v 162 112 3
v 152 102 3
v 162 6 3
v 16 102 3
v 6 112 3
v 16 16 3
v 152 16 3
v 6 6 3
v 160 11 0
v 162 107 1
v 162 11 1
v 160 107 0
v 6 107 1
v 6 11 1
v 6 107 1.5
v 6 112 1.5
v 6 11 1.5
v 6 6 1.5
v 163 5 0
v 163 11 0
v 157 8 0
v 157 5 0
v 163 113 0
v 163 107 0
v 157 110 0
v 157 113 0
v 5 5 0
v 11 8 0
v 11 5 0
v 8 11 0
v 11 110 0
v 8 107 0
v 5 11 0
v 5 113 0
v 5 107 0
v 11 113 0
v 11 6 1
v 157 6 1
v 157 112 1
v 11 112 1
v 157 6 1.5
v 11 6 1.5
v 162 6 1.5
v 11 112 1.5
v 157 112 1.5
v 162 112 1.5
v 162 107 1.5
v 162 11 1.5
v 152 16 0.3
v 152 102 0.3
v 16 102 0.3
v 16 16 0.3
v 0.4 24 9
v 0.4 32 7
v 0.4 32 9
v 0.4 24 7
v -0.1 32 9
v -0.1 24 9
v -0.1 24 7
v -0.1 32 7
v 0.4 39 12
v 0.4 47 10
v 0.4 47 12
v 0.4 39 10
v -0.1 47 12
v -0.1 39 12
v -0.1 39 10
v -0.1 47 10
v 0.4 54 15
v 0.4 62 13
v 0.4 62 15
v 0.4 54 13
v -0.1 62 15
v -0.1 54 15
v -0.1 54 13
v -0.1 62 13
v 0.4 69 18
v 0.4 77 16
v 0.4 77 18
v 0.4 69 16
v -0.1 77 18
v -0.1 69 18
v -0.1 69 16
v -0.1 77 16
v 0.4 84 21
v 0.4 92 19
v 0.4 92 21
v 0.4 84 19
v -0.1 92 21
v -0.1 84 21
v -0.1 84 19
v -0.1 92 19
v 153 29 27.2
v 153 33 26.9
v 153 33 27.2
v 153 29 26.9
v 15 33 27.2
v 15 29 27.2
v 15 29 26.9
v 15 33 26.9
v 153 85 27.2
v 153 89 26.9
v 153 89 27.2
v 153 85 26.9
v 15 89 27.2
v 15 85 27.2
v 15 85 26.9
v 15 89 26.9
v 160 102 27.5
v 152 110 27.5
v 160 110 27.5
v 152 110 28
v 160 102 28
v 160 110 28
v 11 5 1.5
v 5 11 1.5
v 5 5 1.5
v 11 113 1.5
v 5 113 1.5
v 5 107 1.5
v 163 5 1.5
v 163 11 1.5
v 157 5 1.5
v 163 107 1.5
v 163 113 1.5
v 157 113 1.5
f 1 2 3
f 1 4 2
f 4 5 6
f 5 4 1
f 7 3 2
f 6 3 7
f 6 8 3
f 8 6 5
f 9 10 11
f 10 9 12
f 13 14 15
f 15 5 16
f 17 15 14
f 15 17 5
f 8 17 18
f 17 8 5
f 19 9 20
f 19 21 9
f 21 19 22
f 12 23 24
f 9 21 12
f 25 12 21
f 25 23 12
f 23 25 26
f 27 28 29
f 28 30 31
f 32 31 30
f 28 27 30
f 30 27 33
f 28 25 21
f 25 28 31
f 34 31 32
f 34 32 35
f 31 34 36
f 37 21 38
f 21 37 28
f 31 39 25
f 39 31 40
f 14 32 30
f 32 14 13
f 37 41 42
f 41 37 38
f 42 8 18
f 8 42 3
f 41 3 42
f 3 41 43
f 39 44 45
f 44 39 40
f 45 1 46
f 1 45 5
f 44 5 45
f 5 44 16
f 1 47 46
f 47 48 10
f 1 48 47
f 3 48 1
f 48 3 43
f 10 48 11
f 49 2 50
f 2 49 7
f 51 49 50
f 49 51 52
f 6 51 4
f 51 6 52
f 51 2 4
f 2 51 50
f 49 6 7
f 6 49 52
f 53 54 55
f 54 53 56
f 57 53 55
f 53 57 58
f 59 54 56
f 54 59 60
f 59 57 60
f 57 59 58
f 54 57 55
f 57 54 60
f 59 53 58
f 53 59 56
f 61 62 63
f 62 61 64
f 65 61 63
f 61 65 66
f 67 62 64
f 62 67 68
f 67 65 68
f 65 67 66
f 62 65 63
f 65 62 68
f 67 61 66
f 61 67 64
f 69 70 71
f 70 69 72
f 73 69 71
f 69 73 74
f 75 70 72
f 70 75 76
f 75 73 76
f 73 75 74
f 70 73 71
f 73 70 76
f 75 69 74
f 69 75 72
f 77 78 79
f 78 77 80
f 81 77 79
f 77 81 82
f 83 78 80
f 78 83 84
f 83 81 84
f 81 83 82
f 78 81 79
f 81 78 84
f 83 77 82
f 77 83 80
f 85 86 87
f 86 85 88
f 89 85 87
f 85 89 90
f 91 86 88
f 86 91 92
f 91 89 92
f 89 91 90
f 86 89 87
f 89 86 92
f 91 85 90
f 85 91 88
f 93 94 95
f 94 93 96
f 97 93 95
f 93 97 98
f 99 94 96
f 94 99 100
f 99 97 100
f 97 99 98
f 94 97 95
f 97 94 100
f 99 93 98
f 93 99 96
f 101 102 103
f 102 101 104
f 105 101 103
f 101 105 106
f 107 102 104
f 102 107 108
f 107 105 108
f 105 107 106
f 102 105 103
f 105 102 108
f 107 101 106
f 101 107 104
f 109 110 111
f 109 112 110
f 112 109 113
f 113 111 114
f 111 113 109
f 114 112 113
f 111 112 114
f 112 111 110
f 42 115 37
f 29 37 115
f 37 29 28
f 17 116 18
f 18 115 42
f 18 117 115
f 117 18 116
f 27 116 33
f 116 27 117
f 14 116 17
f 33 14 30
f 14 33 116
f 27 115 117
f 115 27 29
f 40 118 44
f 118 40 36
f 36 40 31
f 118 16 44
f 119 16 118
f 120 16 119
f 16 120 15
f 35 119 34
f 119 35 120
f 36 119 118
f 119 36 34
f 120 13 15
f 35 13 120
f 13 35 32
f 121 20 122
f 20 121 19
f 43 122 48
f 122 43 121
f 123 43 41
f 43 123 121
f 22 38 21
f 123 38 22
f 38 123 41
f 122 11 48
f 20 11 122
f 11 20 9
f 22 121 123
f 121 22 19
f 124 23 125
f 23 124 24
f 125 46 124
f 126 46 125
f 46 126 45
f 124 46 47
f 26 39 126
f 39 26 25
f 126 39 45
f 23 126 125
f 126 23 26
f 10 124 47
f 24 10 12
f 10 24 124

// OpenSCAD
// ============================================================================
// 7100CPT-R "Racing" — Aggressive black + red performance style
// Matches the copper/red pasted image aesthetic
// ============================================================================
// Envelope: 165mm x 115mm x 28mm (low profile!)

pcb_x = 160;
pcb_y = 110;
wall = 2.5;
clearance = 1.5;

encl_x = pcb_x + 2*wall + 2*clearance; // 165
encl_y = pcb_y + 2*wall + 2*clearance; // 115
encl_z = 28;  // very slim
base_z = 3;
inner_h = encl_z - base_z - 2;

// Aggressive angle cuts
angle = 15;  // degrees
cut_depth = 8;

// Red accent stripe
stripe_w = 4;
stripe_d = 1;

// Vent slots (top)
vent_count = 6;
vent_w = 3;
vent_l = 30;
vent_pitch = (encl_x - 40) / (vent_count - 1);

// Red accent color from reference: #C92E31
red_accent = "#C92E31";
body_color = "#131313";
body_alt = "#1A1919";

$fn = 32;

// ====================================================================
// MAIN BODY — low profile with aggressive chamfers
// ====================================================================
module body() {
  difference() {
    hull() {
      // Main block with chamfered edges
      translate([6, 6, 1])
        cube([encl_x - 12, encl_y - 12, encl_z - 1]);
      // Sharp chamfer top
      translate([8, 8, 0])
        cube([encl_x - 16, encl_y - 16, encl_z]);
    }

    // Interior cavity
    translate([wall + clearance, wall + clearance, base_z])
      cube([pcb_x, pcb_y, inner_h + 2]);

    // ---- Aggressive edge cuts (front-left corner) ----
    rotate([0, 0, angle])
      translate([-10, -10, base_z + 4])
        cube([cut_depth, cut_depth + 40, encl_z]);

    // ---- Aggressive edge cuts (rear-right corner) ----
    rotate([0, 0, -(90 - angle)])
      translate([-encl_x - 5, encl_y - 10, base_z + 4])
        cube([cut_depth + 20, cut_depth, encl_z]);

    // ---- Top vent slots ----
    for (i = [0:vent_count-1]) {
      translate([
        20 + i * vent_pitch,
        (encl_y - vent_l) / 2,
        encl_z - 1
      ])
        cube([vent_w, vent_l, 2]);
    }

    // ---- Red accent groove trenches (top, parallel) ----
    translate([15, encl_y/2 - 30, encl_z - stripe_d])
      cube([encl_x - 30, stripe_w, stripe_d + 0.1]);
    translate([15, encl_y/2 + 26, encl_z - stripe_d])
      cube([encl_x - 30, stripe_w, stripe_d + 0.1]);

    // ---- Side gills (left edge) ----
    for (i = [0:4]) {
      translate([
        -0.1,
        encl_y/2 - 35 + i * 15,
        base_z + 4 + i * 3
      ])
        cube([wall + 0.2, 8, 2]);
    }

    // ---- Connector cutouts ----
    // Main connector (left)
    translate([-0.1, (encl_y - 60)/2, base_z + 3])
      cube([wall + 0.2, 60, 14]);

    // CAN connectors (top)
    for (d = [20, 50]) {
      translate([wall + clearance + d, encl_y - 0.1, base_z + 4])
        cube([18, wall + 0.2, 10]);
    }

    // USB-C (right)
    translate([encl_x - 0.1, encl_y - 55, base_z + 7])
      cube([wall + 0.2, 12, 5]);

    // SWD (bottom)
    translate([encl_x/2 - 8, -0.1, base_z + 5])
      cube([16, wall + 0.2, 7]);

    // Status LED cutouts (front edge)
    for (i = [0:2]) {
      translate([
        encl_x/2 - 15 + i * 12,
        -0.1,
        base_z + 2
      ])
        cube([5, wall + 0.2, 2.5]);
    }

    // PCB standoffs
    for (x = [wall + clearance + 6, wall + clearance + pcb_x - 6])
      for (y = [wall + clearance + 6, wall + clearance + pcb_y - 6])
        translate([x, y, base_z]) {
          cylinder(h = 4, r = 2.5, $fn = 12);
          cylinder(h = 6, r = 1.5, $fn = 12);
        }

    // Weight reduction
    translate([wall + clearance + 12, wall + clearance + 12, 0.3])
      cube([pcb_x - 24, pcb_y - 24, base_z - 0.3]);

    // Branding recess
    translate([encl_x/2 - 16, encl_y/2 - 4, encl_z - 0.3])
      cube([32, 8, 0.3]);
  }
}

// ====================================================================
// RED ACCENT INSERTS
// ====================================================================
module red_accents() {
  color(red_accent)
  {
    // Accent strips in the groove trenches
    translate([15, encl_y/2 - 30, encl_z - stripe_d - 0.1])
      cube([encl_x - 30, stripe_w, 0.3]);
    translate([15, encl_y/2 + 26, encl_z - stripe_d - 0.1])
      cube([encl_x - 30, stripe_w, 0.3]);

    // Side gill accent edges
    for (i = [0:4]) {
      translate([
        -0.1,
        encl_y/2 - 35 + i * 15,
        base_z + 4 + i * 3
      ])
        cube([0.5, 8, 2]);
    }

    // Corner accent - small triangle badge
    linear_extrude(height = 0.5)
      polygon(points = [[8, 8], [8 + 8, 8], [8, 8 + 8]]);
    translate([encl_x - 8, encl_y - 8, encl_z - 0.5])
      linear_extrude(height = 0.5)
        polygon(points = [[-8, 0], [0, 0], [0, -8]]);
  }
}

// ====================================================================
// INTEGRATED MOUNTING (screw-down flanges)
// ====================================================================
module mounting() {
  color("#222")
  for (x = [8, encl_x - 8])
    for (y = [8, encl_y - 8])
      translate([x - 3, y - 3, 0])
        cube([6, 6, 1.5]);
}

// ====================================================================
// FULL ASSEMBLY
// ====================================================================
module full_assembly() {
  color(body_color) body();
  color(body_alt, 0.9) translate([0, 0, 0]) body();
  red_accents();
  mounting();
}

full_assembly();

// Camera hint
// openscad --camera 82,57,45,55,15,0,320 --imgsize 1200,900
